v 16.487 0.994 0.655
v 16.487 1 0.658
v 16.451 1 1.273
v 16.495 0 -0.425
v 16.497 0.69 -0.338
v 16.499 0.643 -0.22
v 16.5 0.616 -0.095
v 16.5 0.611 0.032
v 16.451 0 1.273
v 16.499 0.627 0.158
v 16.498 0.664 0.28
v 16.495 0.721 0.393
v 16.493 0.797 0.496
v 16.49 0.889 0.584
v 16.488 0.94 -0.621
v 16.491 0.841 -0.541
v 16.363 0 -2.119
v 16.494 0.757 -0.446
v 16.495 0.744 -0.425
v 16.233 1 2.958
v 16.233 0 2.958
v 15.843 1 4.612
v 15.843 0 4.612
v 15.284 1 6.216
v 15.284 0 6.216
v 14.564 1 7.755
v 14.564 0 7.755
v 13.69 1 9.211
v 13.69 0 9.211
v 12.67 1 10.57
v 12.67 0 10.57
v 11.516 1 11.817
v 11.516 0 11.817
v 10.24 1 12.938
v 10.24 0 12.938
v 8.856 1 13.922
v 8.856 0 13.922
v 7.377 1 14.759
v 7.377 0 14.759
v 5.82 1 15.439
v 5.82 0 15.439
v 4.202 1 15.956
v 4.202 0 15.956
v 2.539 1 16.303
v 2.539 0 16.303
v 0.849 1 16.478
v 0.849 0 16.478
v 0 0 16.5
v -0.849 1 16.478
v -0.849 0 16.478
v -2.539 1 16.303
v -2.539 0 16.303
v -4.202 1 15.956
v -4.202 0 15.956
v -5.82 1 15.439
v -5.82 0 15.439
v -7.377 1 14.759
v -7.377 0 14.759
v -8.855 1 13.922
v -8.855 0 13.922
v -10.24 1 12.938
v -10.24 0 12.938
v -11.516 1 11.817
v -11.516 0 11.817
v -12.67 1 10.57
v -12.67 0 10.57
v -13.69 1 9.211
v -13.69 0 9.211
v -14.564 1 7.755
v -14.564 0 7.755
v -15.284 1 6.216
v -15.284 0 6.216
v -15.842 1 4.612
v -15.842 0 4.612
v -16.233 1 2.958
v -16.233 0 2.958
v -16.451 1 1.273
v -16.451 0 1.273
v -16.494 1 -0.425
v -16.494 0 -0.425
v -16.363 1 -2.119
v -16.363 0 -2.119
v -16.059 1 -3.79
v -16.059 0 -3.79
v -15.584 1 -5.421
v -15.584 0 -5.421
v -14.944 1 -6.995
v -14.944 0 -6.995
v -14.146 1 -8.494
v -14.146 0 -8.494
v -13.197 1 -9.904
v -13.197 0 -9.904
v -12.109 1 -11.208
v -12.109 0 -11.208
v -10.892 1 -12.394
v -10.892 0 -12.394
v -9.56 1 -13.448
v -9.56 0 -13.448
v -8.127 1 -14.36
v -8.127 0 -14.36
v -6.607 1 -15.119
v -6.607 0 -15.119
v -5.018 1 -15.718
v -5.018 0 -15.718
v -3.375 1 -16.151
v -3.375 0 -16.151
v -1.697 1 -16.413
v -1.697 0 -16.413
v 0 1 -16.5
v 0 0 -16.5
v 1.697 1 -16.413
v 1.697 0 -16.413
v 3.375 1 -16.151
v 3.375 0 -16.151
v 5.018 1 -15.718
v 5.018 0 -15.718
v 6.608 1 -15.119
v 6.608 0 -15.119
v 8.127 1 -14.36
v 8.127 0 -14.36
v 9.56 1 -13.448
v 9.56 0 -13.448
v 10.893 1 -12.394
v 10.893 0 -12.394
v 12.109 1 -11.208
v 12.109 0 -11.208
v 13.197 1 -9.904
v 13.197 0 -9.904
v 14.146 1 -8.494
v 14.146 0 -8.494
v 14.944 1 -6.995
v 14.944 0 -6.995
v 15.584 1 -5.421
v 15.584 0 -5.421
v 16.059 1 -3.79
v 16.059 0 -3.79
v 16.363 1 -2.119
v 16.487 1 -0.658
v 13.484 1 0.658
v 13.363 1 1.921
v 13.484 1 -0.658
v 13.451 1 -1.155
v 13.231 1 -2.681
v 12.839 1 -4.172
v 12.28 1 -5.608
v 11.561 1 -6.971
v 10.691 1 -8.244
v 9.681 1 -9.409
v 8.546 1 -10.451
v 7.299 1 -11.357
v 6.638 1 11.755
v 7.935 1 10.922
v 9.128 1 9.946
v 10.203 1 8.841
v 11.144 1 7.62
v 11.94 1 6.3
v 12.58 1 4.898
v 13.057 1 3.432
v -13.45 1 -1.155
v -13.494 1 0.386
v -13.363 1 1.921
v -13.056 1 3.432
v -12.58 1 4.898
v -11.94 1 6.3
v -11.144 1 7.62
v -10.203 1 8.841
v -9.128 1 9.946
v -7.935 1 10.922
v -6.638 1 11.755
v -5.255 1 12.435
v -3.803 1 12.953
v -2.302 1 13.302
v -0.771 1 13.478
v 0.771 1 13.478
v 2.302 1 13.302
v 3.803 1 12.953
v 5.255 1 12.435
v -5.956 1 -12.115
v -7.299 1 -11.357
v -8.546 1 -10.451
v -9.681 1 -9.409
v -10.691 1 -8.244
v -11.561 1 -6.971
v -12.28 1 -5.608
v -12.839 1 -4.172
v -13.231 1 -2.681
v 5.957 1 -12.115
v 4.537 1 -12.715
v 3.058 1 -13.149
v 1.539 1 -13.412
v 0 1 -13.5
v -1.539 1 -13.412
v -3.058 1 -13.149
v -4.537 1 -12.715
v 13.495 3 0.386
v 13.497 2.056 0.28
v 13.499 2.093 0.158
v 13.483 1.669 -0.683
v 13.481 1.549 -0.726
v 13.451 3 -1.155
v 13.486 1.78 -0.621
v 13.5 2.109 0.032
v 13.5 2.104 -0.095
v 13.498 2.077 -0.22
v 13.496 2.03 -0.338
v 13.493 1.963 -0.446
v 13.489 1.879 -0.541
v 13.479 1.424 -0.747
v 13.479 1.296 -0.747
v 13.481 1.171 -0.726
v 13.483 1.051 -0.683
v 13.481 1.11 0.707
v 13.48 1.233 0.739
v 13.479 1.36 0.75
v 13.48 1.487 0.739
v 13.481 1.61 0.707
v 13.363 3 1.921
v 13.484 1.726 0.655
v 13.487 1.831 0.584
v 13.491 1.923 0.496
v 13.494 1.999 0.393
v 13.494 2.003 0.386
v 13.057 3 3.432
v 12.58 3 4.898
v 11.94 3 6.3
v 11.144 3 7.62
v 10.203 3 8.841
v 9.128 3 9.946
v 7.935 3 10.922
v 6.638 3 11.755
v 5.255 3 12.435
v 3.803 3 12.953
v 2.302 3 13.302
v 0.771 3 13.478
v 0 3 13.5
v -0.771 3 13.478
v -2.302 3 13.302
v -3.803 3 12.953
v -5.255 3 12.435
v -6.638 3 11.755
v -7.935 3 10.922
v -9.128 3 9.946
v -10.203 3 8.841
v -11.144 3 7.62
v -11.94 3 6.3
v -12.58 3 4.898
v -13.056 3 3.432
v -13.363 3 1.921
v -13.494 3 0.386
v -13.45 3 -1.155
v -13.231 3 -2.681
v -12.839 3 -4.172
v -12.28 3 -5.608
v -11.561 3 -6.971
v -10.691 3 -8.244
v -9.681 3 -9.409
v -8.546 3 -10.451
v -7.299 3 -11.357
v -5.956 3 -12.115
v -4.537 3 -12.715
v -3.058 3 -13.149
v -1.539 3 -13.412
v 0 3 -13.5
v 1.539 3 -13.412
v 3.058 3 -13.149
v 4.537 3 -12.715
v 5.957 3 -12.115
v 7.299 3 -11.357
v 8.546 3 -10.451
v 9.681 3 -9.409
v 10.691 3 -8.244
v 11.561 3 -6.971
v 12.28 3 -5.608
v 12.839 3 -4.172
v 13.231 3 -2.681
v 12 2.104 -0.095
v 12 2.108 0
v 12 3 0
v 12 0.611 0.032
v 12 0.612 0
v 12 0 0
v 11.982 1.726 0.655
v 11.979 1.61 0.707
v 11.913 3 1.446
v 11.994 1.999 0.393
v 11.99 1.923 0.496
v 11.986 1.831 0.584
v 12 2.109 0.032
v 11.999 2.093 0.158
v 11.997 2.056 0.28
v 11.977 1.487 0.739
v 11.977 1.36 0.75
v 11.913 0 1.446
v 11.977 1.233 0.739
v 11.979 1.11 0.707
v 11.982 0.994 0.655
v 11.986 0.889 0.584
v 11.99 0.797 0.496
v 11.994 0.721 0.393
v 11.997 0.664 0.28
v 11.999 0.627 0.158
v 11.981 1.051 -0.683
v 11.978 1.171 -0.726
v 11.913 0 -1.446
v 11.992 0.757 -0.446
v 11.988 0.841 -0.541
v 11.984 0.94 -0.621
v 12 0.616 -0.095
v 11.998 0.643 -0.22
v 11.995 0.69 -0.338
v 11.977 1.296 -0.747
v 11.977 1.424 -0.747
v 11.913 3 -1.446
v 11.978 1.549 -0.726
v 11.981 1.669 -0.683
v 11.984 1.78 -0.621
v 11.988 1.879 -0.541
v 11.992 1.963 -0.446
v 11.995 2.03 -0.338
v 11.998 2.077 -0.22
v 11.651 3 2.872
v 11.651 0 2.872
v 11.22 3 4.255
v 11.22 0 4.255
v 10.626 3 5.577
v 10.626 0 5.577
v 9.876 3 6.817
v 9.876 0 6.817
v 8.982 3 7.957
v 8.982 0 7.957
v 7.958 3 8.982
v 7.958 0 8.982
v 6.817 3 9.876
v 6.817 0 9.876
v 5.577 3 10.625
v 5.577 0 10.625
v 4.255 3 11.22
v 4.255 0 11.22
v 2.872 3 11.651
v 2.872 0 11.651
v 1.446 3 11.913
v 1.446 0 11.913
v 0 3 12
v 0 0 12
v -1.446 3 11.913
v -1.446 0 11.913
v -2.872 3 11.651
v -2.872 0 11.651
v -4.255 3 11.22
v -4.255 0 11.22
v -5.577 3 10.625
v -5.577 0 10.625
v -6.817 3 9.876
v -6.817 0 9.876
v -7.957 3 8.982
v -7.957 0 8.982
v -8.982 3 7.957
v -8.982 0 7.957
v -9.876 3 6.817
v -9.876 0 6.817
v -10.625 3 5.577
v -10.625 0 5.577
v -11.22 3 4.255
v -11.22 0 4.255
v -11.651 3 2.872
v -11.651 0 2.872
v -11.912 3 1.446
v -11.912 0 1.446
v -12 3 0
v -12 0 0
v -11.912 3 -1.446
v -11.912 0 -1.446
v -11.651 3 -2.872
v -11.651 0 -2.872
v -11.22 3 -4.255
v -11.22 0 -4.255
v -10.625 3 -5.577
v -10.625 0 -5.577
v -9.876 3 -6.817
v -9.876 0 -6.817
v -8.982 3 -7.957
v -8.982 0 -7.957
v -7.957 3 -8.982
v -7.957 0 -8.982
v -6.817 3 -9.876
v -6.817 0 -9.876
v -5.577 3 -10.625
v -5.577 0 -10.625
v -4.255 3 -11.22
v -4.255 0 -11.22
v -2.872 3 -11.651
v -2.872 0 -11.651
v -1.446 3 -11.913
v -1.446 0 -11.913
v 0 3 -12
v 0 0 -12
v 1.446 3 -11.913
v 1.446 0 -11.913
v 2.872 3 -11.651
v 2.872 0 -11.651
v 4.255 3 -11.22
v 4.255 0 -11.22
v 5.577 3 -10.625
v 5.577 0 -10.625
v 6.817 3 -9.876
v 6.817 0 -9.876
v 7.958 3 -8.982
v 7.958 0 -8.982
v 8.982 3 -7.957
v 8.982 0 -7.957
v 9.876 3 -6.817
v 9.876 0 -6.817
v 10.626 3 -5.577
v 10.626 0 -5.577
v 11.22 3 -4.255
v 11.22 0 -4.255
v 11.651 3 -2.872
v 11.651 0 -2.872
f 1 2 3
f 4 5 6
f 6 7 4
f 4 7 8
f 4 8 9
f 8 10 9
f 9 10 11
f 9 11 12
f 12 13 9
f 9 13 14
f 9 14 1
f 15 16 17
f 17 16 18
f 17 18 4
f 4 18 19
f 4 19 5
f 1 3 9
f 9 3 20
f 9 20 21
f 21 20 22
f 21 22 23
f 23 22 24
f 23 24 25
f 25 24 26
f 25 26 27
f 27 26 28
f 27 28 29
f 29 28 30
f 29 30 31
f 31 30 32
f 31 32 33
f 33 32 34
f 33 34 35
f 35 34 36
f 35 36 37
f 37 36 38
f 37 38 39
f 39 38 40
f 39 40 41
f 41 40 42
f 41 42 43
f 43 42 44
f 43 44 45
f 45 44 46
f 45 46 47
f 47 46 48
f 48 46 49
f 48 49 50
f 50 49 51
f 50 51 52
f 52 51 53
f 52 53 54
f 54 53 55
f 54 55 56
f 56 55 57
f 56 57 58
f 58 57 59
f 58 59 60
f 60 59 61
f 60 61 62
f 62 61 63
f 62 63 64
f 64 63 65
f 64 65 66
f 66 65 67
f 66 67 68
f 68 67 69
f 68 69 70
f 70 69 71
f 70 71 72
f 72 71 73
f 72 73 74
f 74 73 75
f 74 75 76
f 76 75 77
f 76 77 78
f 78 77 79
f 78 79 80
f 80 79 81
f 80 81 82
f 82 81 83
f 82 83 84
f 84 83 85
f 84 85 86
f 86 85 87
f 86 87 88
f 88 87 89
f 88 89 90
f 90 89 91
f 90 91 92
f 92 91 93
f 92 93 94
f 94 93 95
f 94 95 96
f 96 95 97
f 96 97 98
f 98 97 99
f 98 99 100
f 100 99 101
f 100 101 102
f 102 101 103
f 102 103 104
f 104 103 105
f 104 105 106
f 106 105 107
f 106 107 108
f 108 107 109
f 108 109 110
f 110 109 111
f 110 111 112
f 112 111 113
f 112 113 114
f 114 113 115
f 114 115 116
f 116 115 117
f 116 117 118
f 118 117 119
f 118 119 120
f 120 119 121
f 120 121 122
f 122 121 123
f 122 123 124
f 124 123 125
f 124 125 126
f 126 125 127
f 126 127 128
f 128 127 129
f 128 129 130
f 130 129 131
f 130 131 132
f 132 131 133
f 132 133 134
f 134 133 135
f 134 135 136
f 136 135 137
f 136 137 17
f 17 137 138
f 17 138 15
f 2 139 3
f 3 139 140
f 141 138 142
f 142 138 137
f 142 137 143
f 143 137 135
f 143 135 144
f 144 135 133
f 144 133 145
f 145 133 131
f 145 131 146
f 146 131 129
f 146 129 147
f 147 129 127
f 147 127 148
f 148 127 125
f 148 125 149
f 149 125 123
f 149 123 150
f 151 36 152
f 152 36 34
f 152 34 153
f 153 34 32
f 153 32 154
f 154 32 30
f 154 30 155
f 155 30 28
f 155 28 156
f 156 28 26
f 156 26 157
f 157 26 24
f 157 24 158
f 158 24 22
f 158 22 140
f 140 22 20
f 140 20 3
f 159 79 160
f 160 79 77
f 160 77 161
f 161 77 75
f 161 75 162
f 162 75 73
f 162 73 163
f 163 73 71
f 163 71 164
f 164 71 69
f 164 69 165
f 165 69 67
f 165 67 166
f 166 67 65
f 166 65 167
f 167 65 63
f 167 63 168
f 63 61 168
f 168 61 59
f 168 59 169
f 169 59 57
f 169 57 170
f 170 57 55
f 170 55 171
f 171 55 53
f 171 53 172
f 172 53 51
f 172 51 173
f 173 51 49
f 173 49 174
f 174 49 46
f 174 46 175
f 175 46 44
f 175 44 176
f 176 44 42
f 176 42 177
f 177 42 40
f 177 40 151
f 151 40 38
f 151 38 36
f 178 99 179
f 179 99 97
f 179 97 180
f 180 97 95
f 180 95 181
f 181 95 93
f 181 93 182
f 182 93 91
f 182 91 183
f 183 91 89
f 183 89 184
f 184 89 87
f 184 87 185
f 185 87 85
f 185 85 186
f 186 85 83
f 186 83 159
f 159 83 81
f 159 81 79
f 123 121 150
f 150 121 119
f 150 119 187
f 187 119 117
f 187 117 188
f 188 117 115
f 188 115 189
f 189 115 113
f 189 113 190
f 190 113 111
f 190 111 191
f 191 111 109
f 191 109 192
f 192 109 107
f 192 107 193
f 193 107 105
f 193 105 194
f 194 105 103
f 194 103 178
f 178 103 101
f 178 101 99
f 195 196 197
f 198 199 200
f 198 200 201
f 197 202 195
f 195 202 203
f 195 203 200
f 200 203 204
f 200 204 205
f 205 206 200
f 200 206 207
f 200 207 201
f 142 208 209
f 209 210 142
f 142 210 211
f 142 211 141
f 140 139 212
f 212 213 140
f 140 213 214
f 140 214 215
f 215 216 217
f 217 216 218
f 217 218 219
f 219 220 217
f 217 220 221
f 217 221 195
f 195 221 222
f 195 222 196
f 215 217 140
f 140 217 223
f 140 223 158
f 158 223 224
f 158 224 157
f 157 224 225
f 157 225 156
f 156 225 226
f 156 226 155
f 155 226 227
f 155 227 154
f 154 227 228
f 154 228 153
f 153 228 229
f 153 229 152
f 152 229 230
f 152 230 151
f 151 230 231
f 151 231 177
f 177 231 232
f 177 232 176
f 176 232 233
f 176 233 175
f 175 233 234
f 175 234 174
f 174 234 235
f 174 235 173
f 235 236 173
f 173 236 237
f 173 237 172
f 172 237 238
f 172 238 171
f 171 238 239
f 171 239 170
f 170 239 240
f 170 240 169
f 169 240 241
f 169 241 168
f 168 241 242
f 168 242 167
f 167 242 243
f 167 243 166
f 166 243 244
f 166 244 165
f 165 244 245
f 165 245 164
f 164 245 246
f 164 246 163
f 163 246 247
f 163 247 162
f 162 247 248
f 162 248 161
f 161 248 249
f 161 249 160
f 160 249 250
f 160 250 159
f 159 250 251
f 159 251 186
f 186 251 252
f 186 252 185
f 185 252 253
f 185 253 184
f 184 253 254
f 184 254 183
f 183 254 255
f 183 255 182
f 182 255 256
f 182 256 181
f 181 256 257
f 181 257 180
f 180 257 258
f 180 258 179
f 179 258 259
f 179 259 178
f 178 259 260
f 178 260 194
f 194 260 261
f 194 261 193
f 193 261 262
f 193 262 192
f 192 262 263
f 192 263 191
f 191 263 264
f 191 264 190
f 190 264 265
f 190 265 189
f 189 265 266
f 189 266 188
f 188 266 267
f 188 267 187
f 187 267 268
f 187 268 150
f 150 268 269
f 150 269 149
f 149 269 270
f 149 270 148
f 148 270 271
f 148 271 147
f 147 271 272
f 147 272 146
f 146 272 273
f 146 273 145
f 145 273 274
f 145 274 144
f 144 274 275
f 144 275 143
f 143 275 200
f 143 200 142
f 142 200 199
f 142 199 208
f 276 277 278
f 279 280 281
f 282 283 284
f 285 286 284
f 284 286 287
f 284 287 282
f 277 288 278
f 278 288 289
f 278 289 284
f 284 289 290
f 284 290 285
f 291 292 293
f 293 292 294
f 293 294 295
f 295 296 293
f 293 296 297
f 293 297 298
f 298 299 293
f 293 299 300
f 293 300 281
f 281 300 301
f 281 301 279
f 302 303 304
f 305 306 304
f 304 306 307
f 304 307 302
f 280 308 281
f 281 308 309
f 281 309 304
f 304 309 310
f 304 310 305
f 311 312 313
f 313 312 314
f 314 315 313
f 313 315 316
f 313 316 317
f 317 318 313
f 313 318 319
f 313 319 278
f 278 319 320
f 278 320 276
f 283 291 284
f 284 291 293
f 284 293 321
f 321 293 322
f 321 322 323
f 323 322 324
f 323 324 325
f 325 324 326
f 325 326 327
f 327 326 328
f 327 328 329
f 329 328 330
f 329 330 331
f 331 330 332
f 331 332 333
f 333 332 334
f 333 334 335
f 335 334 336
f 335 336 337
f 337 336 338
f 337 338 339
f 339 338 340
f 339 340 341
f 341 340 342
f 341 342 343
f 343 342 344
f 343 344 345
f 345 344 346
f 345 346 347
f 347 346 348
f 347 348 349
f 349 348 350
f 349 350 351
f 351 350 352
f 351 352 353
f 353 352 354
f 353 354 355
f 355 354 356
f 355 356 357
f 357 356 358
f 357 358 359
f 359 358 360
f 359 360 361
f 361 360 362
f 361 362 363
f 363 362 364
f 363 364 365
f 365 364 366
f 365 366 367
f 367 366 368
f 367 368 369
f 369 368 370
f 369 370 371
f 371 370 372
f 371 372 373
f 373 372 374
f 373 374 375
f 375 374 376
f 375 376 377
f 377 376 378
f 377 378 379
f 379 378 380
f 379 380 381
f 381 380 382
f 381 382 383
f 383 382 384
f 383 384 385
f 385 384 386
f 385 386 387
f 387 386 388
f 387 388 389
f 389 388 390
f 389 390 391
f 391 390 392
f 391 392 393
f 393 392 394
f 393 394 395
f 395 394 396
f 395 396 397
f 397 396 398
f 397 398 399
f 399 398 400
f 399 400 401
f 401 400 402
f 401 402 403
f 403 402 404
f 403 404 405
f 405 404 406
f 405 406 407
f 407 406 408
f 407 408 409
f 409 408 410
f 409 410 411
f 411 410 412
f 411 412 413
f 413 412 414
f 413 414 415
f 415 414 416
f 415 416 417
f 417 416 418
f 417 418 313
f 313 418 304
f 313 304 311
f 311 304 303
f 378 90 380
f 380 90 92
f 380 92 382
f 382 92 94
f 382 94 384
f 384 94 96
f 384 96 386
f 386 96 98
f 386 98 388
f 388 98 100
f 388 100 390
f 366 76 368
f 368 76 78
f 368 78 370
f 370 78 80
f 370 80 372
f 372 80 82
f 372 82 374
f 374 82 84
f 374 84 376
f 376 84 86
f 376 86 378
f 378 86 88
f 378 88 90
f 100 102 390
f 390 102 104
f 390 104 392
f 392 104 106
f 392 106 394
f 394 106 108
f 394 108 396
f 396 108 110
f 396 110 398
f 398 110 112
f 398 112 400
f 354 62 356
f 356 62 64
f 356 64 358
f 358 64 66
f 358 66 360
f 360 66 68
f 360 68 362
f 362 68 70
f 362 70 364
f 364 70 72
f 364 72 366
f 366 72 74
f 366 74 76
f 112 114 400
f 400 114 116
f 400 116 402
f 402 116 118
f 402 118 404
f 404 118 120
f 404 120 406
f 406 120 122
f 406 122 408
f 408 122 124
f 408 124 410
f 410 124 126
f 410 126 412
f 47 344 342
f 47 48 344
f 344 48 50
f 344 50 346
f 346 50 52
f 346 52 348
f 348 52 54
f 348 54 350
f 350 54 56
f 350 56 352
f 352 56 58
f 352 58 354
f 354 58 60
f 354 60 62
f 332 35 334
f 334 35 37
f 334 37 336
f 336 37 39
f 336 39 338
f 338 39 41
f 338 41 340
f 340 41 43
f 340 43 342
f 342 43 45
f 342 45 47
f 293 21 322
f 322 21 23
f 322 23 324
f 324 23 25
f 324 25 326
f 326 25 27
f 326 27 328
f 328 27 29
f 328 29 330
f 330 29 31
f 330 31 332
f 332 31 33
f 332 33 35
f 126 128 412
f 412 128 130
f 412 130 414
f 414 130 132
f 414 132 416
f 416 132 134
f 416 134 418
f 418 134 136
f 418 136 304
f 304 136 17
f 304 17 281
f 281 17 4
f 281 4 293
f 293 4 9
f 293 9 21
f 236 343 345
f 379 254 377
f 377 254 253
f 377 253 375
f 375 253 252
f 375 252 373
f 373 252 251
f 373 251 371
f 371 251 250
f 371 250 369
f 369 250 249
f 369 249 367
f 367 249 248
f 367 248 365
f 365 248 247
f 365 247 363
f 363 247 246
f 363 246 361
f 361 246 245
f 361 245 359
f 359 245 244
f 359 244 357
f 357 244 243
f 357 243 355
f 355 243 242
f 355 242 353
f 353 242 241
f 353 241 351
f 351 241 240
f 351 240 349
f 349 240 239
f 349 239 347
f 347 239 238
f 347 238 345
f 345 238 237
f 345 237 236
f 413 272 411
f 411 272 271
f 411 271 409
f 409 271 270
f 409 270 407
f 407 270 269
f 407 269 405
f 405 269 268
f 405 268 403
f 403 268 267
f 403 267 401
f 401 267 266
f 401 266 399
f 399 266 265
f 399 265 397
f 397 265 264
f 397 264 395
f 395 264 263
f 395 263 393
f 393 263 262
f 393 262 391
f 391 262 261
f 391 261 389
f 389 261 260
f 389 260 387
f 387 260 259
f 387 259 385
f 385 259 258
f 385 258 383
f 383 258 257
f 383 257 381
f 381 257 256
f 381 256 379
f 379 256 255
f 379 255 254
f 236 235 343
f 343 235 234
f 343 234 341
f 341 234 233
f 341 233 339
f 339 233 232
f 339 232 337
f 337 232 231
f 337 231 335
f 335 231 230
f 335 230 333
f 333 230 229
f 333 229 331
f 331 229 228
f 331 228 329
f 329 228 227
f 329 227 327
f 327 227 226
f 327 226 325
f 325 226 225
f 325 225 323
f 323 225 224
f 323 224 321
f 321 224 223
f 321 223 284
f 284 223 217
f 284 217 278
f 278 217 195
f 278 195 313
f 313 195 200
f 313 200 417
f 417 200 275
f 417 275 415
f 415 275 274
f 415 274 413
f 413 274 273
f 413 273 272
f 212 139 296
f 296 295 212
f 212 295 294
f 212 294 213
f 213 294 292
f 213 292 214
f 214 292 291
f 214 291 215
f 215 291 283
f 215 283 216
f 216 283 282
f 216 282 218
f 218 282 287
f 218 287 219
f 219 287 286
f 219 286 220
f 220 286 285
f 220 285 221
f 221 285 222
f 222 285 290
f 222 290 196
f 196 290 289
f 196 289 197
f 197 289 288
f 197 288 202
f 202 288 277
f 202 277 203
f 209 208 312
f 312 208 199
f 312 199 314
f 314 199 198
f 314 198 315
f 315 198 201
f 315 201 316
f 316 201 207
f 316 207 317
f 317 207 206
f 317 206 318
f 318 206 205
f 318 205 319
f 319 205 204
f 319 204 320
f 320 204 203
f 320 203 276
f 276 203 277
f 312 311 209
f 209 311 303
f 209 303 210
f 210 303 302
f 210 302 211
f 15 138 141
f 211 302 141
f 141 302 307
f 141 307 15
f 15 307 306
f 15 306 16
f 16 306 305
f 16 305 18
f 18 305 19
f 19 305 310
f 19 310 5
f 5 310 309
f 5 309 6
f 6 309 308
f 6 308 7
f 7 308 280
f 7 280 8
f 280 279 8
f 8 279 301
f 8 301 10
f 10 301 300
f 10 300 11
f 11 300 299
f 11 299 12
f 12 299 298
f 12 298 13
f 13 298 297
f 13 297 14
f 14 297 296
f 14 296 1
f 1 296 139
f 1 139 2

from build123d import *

# Parameters (mm, degrees)
SKETCH1_R           = 16.5
BOSS_EXTRUDE1_DEPTH = 1
SKETCH2_R           = 13.5
BOSS_EXTRUDE2_DEPTH = 3
SKETCH3_R           = 12
CUT_EXTRUDE1_DEPTH  = 3
SKETCH5_R           = 0.75
CUT_EXTRUDE3_DEPTH  = 17


with BuildPart() as part:
    # Sketch1 → Boss-Extrude1 (new body)
    with BuildSketch(Plane(origin=(0, 0, 0), x_dir=(1, 0, 0), z_dir=(0, 1, 0))):
        Circle(SKETCH1_R)
    extrude(amount=BOSS_EXTRUDE1_DEPTH)

    # Sketch2 → Boss-Extrude2 (add)
    with BuildSketch(Plane(origin=(0, 0, 0), x_dir=(1, 0, 0), z_dir=(0, 1, 0))):
        Circle(SKETCH2_R)
    extrude(amount=BOSS_EXTRUDE2_DEPTH)

    # Sketch3 → Cut-Extrude1 (cut)
    with BuildSketch(Plane(origin=(0, 0, 0), x_dir=(1, 0, 0), z_dir=(0, 1, 0))):
        Circle(SKETCH3_R)
    extrude(amount=CUT_EXTRUDE1_DEPTH, mode=Mode.SUBTRACT)

    # Sketch5 → Cut-Extrude3 (cut)
    with BuildSketch(Plane(origin=(0, 0, 0), x_dir=(0, 0, -1), z_dir=(1, 0, 0))):
        with Locations((0, 1.36)):
            Circle(SKETCH5_R)
    extrude(amount=CUT_EXTRUDE3_DEPTH, mode=Mode.SUBTRACT)


solid = part.part
